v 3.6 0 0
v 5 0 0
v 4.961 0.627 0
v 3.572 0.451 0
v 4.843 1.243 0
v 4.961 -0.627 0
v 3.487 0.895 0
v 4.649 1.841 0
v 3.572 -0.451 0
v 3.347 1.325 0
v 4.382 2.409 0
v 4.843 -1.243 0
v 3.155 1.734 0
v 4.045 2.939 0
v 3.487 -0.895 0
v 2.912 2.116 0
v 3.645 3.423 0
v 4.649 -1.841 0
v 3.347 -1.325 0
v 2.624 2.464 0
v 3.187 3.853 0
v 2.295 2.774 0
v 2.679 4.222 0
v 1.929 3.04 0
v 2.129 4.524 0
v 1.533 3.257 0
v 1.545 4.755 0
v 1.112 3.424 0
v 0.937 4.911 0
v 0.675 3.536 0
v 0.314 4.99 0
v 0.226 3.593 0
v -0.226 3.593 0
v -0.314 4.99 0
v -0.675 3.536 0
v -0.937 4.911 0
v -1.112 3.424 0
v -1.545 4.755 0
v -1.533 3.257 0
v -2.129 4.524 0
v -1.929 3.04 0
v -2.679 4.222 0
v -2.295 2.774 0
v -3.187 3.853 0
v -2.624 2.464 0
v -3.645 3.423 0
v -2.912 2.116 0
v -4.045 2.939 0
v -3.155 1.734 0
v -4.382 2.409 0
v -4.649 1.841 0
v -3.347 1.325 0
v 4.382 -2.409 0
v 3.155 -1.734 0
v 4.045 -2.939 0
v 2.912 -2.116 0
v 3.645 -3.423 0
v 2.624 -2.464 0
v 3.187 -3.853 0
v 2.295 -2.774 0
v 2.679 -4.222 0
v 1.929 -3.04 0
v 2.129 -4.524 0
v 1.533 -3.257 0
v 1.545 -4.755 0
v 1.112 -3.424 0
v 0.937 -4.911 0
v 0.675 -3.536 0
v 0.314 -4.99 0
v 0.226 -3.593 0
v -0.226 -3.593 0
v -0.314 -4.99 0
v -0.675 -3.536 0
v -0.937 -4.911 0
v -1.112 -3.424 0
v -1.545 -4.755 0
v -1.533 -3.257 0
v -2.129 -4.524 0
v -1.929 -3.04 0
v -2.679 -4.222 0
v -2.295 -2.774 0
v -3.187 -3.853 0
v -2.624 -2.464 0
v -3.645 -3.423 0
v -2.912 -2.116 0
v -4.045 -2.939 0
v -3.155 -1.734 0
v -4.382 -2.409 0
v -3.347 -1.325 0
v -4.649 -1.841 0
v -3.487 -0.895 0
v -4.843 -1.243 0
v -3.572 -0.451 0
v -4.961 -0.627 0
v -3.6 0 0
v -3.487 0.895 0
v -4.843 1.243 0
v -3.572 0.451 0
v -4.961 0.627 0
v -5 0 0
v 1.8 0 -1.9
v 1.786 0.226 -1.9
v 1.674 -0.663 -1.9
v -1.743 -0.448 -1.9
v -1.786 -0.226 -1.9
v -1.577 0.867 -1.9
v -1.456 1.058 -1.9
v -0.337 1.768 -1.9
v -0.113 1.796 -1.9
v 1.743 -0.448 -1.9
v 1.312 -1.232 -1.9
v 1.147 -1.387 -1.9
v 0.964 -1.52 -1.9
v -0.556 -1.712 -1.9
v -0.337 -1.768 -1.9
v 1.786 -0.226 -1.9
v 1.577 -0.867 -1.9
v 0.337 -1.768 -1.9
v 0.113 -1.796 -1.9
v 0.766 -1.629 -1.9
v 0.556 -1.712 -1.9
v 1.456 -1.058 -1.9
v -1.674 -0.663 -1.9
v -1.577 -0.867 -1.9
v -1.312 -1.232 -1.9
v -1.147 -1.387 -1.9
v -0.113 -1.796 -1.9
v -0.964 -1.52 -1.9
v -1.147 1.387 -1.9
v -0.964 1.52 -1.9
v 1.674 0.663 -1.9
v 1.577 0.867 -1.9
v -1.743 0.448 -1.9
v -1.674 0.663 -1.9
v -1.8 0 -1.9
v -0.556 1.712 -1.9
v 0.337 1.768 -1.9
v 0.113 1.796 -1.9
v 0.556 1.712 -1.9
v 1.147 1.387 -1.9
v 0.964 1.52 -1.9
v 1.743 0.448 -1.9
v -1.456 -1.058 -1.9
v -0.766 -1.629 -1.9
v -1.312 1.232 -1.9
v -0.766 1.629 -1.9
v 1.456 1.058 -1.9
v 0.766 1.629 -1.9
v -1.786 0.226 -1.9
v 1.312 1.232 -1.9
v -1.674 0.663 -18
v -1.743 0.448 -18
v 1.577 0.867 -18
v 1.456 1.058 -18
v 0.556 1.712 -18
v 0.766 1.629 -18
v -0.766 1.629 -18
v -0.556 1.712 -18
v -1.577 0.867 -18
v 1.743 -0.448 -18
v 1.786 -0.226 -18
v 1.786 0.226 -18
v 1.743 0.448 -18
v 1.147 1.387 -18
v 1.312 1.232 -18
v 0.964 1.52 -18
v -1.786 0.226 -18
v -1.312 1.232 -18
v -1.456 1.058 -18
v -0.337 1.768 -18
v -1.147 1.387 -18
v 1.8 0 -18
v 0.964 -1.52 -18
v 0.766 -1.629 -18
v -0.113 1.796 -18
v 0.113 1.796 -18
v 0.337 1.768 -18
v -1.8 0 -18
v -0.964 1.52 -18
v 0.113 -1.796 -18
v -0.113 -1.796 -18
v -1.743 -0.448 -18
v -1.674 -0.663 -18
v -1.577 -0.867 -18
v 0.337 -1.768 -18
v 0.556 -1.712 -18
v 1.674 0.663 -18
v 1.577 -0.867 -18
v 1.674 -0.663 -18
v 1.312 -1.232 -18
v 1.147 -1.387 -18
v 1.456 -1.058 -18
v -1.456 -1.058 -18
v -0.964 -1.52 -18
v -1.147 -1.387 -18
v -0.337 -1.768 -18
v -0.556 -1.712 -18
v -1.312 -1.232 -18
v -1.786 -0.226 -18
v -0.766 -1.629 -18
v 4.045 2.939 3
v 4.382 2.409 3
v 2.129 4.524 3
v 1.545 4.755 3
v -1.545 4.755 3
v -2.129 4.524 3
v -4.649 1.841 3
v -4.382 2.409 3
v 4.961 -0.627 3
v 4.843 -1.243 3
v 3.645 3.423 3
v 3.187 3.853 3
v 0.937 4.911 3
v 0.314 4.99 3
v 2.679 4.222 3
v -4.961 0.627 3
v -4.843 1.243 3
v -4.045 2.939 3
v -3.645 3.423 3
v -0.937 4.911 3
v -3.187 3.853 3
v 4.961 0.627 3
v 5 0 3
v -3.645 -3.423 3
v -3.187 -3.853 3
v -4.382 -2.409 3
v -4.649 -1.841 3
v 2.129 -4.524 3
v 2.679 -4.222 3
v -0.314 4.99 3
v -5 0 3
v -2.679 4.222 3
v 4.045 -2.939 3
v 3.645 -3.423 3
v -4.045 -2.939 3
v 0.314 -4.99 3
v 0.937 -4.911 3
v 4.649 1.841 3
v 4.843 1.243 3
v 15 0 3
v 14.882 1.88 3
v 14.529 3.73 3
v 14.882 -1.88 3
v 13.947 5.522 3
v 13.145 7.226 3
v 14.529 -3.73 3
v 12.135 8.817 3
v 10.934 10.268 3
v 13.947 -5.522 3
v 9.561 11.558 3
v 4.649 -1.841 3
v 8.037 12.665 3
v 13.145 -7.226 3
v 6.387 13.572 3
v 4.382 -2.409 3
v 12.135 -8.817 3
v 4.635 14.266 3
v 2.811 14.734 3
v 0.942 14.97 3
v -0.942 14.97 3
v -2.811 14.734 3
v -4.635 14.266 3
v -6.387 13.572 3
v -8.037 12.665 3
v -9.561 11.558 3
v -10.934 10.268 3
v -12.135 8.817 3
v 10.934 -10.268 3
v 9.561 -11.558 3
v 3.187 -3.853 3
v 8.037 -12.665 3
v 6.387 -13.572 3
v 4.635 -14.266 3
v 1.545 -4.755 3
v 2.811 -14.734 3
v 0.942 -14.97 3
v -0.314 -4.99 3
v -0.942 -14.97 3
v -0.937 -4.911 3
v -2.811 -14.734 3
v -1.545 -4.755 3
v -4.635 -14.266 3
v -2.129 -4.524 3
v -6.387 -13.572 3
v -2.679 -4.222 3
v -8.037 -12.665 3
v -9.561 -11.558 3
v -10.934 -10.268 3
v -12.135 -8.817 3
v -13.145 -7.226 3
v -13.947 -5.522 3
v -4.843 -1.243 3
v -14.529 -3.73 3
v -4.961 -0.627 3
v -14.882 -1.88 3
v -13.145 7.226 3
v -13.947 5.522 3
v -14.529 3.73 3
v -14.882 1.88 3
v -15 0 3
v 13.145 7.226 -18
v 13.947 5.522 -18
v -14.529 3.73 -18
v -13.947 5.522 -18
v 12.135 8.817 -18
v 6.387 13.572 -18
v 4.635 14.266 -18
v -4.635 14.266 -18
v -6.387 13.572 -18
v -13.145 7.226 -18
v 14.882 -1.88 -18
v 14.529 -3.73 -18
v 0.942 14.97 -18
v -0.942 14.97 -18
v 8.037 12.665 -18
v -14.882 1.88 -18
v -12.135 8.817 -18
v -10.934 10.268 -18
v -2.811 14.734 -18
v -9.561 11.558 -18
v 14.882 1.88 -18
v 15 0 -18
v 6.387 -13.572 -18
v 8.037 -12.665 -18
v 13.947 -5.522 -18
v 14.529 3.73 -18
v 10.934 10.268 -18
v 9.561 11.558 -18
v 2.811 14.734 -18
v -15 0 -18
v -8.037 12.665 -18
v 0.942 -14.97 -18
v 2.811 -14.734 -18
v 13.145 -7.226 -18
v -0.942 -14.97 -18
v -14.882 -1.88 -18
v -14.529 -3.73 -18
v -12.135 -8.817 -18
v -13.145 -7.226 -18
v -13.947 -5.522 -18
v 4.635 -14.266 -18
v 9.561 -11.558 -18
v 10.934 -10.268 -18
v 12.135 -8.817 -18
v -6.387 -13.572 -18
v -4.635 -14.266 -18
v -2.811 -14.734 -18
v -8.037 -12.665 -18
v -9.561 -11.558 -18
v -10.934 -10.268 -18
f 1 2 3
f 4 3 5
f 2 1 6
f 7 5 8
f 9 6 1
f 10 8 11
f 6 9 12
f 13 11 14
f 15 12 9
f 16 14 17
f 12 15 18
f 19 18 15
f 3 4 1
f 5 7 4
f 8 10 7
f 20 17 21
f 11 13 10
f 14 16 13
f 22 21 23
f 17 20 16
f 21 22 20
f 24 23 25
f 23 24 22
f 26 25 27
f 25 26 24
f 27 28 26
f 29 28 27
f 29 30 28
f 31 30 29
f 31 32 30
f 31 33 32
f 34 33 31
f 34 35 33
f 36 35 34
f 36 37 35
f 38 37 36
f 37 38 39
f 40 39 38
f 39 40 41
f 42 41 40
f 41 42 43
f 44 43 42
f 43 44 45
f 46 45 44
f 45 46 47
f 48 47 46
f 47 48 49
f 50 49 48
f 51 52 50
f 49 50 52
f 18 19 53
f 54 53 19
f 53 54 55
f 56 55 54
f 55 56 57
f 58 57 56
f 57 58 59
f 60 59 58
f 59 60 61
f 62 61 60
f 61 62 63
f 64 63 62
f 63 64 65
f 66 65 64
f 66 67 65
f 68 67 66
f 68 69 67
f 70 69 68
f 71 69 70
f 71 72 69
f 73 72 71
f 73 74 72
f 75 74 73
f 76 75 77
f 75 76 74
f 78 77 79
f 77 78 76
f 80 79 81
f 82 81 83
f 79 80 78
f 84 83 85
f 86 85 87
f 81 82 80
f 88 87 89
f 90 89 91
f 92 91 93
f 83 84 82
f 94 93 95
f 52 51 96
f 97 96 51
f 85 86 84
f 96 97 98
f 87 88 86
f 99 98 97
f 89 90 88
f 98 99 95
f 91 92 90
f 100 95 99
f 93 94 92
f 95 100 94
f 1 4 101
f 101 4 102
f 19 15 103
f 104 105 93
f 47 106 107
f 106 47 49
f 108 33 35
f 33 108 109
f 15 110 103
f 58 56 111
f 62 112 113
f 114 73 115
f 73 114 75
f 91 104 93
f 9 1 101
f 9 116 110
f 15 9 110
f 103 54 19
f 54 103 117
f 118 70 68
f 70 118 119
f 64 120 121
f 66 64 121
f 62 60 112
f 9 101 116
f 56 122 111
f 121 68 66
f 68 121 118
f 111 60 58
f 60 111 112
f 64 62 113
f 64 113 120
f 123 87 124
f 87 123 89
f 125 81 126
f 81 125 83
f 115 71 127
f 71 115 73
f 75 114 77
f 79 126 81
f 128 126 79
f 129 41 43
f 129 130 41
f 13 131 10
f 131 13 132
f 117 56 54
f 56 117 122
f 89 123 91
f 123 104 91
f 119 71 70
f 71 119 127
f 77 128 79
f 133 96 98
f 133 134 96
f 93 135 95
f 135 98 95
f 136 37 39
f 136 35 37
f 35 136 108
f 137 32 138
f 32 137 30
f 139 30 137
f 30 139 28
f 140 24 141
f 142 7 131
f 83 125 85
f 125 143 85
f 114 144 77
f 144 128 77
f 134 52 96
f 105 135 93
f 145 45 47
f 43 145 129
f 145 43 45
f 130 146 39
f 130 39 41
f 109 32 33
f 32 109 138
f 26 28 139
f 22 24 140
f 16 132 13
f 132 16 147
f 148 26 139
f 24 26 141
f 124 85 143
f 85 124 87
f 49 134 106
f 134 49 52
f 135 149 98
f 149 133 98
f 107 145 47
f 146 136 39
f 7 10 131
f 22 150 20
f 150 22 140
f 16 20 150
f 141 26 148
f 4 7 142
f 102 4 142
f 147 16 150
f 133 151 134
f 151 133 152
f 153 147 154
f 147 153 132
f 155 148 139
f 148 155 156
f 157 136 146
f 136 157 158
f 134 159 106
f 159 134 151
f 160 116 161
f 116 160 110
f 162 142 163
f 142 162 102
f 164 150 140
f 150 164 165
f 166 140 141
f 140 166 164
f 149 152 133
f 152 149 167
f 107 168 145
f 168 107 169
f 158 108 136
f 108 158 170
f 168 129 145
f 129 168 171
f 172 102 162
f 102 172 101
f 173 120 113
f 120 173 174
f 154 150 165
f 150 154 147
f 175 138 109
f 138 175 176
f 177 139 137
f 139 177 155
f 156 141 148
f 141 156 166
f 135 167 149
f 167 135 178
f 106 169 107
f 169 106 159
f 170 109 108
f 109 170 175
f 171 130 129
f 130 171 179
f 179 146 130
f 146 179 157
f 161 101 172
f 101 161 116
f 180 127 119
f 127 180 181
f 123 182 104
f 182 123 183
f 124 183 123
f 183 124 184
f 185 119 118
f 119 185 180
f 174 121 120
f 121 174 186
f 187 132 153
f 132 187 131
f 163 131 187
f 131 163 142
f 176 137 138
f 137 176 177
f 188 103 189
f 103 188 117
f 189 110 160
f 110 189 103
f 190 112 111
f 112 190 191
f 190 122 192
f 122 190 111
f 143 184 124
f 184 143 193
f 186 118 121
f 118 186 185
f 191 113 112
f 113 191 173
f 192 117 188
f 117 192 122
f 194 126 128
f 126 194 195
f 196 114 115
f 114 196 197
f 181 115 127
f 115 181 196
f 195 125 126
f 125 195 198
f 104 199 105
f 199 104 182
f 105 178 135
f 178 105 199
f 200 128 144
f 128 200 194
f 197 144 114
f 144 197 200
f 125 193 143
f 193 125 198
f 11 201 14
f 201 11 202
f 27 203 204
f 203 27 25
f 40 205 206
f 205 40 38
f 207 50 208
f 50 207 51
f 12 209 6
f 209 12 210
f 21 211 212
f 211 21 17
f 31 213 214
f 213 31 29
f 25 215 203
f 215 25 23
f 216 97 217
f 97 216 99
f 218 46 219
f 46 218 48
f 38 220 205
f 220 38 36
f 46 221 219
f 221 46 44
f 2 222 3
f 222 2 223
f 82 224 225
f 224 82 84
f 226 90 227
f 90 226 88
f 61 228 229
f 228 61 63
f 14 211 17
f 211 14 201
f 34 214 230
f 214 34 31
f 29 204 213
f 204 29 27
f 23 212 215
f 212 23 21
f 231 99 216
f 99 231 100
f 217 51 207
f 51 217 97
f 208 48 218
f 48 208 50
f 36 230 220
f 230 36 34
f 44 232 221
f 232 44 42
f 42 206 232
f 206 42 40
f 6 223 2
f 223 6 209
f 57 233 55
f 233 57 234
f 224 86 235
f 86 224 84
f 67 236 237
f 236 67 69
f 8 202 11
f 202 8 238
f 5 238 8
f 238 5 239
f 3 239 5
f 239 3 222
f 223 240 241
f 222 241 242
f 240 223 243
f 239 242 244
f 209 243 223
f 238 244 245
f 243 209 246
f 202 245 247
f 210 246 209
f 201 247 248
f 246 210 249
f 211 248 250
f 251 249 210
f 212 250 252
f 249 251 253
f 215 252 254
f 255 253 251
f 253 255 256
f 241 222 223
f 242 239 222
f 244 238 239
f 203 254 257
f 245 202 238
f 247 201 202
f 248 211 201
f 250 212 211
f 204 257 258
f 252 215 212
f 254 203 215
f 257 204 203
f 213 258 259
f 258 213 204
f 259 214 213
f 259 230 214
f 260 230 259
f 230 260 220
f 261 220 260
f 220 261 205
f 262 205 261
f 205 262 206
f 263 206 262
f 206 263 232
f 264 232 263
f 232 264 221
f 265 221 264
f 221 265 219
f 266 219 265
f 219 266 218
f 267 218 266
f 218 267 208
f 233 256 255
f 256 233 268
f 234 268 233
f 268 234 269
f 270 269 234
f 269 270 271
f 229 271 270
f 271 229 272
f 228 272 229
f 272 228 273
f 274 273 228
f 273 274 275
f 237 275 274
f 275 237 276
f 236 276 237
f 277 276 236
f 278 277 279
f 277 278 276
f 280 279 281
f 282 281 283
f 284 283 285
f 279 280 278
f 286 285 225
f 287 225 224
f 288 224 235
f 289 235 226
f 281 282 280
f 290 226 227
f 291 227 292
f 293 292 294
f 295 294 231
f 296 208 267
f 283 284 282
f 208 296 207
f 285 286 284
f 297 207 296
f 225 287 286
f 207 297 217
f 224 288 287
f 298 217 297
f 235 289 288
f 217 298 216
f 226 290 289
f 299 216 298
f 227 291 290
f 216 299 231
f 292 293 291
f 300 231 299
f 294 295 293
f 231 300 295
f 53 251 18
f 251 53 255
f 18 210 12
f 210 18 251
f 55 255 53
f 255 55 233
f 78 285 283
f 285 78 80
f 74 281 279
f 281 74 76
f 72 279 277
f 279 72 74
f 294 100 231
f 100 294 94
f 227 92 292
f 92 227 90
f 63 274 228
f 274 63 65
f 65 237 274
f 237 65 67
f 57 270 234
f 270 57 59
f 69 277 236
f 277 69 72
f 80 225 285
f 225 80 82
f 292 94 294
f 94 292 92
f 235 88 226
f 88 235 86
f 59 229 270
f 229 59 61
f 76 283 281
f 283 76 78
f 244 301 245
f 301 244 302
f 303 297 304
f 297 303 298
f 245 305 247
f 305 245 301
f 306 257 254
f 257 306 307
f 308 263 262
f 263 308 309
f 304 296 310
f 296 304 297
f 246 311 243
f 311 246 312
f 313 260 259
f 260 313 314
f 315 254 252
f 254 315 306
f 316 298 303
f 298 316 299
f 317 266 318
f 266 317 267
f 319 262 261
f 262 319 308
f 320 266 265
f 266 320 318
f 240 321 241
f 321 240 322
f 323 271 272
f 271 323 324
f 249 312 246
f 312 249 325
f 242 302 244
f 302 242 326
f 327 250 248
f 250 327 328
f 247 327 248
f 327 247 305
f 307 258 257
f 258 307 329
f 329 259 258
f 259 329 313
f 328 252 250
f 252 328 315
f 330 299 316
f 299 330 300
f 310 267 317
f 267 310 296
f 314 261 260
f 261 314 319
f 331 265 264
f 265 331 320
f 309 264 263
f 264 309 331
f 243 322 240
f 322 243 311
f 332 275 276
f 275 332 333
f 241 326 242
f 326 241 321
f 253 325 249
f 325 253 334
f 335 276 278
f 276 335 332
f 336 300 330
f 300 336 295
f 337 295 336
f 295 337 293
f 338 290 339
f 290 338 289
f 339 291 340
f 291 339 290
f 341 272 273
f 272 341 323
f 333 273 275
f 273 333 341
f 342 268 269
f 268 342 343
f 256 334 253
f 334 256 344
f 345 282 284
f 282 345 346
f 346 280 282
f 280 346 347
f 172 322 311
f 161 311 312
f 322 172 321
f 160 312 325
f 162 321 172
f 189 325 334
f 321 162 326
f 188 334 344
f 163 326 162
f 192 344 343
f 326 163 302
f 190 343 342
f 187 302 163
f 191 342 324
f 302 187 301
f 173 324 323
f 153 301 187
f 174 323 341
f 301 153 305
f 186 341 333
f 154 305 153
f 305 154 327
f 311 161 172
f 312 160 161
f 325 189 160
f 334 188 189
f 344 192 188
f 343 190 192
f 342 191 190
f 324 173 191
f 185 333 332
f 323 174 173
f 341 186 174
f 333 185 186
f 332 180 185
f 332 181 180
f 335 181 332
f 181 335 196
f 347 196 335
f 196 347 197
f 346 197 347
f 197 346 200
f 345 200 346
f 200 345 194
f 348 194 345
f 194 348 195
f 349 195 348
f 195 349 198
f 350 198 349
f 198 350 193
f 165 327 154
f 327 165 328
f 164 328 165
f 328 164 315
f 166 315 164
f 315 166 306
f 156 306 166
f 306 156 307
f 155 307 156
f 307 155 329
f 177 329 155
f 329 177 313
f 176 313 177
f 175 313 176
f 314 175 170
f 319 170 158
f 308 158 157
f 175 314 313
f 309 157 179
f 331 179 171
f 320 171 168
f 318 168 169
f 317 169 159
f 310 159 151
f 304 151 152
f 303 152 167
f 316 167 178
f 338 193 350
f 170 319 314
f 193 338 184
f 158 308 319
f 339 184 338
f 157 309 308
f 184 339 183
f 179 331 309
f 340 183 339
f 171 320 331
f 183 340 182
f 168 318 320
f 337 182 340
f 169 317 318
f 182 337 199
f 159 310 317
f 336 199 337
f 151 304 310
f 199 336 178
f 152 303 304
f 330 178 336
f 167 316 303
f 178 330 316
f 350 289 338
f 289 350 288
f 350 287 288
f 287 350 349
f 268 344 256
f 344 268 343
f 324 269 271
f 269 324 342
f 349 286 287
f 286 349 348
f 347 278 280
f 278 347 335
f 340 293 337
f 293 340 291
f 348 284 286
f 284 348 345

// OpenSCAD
$fn = 50;


difference() {
	union() {
		translate(v = [0, 0, -18.0000000000]) {
			cylinder(h = 21, r = 15.0000000000);
		}
	}
	union() {
		translate(v = [0, 0, 0]) {
			rotate(a = [0, 0, 0]) {
				difference() {
					union() {
						translate(v = [0, 0, -21.0000000000]) {
							cylinder(h = 21, r = 1.5000000000);
						}
						translate(v = [0, 0, -1.9000000000]) {
							cylinder(h = 1.9000000000, r1 = 1.8000000000, r2 = 3.6000000000);
						}
						translate(v = [0, 0, -21.0000000000]) {
							cylinder(h = 21, r = 1.8000000000);
						}
						translate(v = [0, 0, -21.0000000000]) {
							cylinder(h = 21, r = 1.5000000000);
						}
					}
					union();
				}
			}
		}
		#cylinder(h = 3, r = 5.0000000000);
	}
}
